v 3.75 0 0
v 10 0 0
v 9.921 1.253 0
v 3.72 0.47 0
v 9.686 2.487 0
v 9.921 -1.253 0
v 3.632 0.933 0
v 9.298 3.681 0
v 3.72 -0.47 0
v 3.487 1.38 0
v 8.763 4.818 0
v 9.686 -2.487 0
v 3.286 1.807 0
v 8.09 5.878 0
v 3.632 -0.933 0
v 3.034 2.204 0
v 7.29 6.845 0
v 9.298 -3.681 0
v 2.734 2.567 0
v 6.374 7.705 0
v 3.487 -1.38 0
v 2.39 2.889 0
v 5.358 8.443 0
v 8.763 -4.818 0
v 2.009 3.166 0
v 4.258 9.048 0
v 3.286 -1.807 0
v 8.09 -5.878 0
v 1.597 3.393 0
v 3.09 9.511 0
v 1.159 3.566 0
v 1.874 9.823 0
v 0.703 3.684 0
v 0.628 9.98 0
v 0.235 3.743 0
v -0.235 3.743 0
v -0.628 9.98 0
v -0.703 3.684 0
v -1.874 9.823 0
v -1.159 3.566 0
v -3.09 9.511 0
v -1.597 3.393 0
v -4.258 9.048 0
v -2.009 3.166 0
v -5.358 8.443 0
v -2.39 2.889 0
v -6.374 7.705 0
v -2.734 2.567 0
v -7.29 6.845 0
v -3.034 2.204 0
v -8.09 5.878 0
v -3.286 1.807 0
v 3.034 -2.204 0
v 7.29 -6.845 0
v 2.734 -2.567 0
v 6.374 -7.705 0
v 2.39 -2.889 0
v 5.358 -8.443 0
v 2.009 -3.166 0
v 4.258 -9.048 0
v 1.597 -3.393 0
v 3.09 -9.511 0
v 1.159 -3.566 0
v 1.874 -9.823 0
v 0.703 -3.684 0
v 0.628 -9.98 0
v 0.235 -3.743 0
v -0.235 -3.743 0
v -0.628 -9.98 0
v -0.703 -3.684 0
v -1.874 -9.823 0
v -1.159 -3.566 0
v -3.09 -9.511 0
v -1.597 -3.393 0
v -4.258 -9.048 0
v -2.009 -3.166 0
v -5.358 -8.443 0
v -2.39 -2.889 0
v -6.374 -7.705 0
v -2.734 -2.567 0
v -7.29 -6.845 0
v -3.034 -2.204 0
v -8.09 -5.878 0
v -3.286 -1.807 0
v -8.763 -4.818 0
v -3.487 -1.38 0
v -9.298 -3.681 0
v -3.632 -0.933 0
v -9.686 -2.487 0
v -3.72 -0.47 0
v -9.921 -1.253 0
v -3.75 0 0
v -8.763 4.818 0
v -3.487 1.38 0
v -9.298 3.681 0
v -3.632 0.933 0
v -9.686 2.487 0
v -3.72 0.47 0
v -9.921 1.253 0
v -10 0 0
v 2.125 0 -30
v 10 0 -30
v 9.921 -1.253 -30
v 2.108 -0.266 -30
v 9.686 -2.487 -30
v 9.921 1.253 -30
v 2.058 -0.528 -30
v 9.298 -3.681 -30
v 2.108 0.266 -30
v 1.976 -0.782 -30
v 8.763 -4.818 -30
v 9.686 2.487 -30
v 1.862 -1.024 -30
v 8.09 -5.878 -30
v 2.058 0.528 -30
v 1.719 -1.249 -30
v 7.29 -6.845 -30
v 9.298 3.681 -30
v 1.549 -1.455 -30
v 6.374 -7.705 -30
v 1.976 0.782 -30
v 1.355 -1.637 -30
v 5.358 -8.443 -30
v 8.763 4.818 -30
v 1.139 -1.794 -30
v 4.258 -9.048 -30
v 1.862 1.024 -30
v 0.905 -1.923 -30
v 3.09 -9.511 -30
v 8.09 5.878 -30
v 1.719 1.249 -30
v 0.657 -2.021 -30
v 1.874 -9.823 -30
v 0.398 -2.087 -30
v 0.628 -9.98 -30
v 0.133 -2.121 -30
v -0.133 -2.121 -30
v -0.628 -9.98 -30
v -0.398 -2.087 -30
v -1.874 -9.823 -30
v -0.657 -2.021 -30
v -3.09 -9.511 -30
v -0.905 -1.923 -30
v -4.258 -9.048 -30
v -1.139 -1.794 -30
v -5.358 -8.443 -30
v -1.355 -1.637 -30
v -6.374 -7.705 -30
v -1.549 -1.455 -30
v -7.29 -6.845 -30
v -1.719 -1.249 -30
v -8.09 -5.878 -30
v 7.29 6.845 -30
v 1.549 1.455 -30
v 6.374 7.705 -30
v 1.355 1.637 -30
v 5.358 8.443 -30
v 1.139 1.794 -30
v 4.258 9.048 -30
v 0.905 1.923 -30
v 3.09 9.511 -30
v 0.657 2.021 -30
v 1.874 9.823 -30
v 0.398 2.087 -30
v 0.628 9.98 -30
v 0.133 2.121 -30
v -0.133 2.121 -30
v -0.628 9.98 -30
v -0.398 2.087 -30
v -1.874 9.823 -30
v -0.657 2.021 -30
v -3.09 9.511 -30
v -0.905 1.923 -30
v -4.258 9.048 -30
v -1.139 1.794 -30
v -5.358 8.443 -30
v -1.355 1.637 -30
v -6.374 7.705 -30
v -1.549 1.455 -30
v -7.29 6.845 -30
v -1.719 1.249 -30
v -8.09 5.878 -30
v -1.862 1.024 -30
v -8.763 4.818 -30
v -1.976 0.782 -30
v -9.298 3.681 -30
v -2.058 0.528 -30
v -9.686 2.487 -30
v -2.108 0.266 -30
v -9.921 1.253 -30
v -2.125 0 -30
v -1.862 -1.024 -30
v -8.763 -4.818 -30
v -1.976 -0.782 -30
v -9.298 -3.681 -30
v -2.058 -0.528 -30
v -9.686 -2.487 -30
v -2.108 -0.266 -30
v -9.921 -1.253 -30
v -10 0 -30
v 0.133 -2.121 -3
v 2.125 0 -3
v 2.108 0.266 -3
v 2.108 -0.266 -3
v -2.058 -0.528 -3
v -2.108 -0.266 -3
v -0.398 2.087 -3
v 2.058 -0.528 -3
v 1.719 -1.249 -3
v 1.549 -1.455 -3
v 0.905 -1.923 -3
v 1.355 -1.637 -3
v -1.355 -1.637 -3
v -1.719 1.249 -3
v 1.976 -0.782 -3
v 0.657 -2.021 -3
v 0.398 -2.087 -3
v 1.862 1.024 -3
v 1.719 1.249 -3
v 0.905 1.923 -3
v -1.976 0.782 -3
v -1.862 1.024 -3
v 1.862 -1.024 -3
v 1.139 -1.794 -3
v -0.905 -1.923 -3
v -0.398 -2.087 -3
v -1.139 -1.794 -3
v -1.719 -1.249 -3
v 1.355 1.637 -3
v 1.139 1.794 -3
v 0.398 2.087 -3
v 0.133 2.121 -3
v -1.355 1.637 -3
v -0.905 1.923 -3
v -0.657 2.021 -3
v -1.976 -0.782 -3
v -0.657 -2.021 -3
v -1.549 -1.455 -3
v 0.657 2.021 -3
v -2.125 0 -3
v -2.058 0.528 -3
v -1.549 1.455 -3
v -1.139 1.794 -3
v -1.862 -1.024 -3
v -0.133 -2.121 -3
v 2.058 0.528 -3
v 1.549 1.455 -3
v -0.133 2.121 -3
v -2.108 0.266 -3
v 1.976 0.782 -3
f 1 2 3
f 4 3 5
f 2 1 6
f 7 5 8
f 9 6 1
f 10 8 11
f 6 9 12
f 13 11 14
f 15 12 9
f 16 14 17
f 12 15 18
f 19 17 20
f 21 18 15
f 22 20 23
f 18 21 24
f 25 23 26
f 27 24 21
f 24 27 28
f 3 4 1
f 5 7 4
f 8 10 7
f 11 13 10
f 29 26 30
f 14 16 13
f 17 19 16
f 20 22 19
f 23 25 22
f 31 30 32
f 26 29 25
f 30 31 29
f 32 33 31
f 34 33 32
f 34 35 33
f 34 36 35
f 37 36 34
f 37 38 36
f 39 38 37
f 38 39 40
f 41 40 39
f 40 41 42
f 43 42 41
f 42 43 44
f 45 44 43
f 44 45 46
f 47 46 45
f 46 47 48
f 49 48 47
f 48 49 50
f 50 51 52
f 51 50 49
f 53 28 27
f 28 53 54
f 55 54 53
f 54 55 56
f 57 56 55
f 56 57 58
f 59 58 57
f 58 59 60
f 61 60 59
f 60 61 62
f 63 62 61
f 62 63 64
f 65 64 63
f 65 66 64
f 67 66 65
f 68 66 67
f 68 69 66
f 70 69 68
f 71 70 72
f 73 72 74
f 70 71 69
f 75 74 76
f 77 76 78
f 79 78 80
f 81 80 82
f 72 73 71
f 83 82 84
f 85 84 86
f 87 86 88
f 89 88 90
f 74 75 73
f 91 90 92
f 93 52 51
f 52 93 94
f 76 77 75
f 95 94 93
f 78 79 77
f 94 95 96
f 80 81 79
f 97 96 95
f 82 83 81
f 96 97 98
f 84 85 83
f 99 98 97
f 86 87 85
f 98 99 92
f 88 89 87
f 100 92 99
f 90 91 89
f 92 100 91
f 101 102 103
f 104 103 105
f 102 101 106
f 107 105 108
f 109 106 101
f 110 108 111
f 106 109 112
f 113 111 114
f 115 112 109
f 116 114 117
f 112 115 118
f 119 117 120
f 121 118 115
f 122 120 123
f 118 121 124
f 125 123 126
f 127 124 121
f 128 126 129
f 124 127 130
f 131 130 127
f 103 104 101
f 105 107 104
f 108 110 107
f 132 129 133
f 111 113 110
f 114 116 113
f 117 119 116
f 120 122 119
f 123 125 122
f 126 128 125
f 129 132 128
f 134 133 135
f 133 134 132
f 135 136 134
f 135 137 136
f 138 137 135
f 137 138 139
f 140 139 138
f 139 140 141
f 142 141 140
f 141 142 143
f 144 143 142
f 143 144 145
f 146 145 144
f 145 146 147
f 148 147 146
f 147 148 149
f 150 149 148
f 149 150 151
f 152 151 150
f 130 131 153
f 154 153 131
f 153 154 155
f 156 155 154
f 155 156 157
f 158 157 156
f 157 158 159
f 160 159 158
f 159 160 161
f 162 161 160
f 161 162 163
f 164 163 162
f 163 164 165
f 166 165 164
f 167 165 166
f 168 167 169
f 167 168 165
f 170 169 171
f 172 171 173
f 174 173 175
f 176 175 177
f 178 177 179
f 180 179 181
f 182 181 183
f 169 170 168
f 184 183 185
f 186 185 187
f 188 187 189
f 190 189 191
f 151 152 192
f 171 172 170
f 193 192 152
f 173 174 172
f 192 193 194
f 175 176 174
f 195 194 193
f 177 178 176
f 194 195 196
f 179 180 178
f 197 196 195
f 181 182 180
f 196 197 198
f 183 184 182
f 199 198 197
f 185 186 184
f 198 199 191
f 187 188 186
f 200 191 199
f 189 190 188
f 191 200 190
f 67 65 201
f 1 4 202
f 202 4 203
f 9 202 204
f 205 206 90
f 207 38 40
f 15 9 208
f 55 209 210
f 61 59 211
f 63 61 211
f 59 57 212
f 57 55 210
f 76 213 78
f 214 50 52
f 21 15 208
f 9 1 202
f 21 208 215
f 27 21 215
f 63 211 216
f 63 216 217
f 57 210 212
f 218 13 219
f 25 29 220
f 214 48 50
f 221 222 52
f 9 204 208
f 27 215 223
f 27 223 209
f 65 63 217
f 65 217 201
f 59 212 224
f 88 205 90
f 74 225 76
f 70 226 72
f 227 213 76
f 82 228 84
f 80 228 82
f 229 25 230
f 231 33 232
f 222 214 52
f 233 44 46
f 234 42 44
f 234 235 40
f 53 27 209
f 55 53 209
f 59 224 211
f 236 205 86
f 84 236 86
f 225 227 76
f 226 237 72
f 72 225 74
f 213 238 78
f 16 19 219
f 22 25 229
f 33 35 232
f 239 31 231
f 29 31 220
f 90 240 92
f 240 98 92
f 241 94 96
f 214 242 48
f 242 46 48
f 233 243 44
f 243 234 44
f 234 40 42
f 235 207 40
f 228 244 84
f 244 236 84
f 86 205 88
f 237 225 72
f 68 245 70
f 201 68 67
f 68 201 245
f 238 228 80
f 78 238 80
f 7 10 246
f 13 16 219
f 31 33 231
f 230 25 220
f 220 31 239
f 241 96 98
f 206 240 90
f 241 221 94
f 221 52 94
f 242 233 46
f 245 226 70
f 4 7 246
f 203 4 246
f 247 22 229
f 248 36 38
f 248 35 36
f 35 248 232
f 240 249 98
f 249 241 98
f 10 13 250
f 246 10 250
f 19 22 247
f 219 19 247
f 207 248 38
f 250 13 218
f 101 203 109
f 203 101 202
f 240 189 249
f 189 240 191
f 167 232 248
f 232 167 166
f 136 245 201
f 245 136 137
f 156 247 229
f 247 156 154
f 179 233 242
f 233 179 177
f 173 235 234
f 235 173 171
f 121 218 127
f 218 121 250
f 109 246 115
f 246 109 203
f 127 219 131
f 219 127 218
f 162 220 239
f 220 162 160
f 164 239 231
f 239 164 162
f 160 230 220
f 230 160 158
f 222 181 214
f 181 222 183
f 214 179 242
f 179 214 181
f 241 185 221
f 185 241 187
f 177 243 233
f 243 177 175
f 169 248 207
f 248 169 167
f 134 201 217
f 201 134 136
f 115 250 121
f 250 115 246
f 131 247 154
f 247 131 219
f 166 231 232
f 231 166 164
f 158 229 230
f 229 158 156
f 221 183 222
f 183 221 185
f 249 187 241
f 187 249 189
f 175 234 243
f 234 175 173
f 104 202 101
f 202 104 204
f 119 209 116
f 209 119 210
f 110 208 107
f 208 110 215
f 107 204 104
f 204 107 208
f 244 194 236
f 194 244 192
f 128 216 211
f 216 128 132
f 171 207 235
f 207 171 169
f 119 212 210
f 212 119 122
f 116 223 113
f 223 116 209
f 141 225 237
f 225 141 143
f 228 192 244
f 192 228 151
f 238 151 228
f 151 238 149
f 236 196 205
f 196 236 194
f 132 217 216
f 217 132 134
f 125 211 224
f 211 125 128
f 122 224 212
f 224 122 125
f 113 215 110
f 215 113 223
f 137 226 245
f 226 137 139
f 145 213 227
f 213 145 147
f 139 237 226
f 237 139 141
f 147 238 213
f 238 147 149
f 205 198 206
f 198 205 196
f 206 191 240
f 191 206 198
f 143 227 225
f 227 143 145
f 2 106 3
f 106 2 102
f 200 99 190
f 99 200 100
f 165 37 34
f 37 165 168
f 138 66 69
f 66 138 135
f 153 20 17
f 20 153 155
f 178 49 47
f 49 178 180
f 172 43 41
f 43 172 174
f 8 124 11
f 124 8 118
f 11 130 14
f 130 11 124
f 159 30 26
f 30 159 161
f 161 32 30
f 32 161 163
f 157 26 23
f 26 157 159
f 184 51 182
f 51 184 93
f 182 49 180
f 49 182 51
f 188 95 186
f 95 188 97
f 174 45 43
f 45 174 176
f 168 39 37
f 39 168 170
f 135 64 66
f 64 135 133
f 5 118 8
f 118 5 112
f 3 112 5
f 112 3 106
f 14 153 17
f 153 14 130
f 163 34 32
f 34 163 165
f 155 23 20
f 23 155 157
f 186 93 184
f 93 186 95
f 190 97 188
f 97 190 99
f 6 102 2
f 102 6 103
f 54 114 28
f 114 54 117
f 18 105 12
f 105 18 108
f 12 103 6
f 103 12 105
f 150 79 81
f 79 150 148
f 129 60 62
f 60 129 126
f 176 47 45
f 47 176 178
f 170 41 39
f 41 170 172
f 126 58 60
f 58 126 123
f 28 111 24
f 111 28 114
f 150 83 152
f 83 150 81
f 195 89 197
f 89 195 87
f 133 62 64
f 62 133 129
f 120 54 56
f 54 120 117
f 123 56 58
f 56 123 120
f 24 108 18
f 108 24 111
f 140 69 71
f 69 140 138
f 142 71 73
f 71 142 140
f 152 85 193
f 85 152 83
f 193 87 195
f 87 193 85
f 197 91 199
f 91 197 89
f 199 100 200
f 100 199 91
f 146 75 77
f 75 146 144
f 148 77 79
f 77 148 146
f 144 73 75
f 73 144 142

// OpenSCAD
$fn = 50;


difference() {
	union() {
		translate(v = [0, 0, -30.0000000000]) {
			cylinder(h = 30, r = 10.0000000000);
		}
		cylinder(h = 0, r = 13.0000000000);
	}
	union() {
		translate(v = [0, 0, 0]) {
			rotate(a = [0, 0, 0]) {
				difference() {
					union() {
						#translate(v = [0, 0, -30.0000000000]) {
							cylinder(h = 30, r = 2.0000000000);
						}
						#translate(v = [0, 0, -3]) {
							cylinder(h = 3, r1 = 2.1250000000, r2 = 3.7500000000);
						}
						#translate(v = [0, 0, -30.0000000000]) {
							cylinder(h = 30, r = 2.1250000000);
						}
						#translate(v = [0, 0, -30.0000000000]) {
							cylinder(h = 30, r = 2.0000000000);
						}
					}
					union();
				}
			}
		}
	}
}
